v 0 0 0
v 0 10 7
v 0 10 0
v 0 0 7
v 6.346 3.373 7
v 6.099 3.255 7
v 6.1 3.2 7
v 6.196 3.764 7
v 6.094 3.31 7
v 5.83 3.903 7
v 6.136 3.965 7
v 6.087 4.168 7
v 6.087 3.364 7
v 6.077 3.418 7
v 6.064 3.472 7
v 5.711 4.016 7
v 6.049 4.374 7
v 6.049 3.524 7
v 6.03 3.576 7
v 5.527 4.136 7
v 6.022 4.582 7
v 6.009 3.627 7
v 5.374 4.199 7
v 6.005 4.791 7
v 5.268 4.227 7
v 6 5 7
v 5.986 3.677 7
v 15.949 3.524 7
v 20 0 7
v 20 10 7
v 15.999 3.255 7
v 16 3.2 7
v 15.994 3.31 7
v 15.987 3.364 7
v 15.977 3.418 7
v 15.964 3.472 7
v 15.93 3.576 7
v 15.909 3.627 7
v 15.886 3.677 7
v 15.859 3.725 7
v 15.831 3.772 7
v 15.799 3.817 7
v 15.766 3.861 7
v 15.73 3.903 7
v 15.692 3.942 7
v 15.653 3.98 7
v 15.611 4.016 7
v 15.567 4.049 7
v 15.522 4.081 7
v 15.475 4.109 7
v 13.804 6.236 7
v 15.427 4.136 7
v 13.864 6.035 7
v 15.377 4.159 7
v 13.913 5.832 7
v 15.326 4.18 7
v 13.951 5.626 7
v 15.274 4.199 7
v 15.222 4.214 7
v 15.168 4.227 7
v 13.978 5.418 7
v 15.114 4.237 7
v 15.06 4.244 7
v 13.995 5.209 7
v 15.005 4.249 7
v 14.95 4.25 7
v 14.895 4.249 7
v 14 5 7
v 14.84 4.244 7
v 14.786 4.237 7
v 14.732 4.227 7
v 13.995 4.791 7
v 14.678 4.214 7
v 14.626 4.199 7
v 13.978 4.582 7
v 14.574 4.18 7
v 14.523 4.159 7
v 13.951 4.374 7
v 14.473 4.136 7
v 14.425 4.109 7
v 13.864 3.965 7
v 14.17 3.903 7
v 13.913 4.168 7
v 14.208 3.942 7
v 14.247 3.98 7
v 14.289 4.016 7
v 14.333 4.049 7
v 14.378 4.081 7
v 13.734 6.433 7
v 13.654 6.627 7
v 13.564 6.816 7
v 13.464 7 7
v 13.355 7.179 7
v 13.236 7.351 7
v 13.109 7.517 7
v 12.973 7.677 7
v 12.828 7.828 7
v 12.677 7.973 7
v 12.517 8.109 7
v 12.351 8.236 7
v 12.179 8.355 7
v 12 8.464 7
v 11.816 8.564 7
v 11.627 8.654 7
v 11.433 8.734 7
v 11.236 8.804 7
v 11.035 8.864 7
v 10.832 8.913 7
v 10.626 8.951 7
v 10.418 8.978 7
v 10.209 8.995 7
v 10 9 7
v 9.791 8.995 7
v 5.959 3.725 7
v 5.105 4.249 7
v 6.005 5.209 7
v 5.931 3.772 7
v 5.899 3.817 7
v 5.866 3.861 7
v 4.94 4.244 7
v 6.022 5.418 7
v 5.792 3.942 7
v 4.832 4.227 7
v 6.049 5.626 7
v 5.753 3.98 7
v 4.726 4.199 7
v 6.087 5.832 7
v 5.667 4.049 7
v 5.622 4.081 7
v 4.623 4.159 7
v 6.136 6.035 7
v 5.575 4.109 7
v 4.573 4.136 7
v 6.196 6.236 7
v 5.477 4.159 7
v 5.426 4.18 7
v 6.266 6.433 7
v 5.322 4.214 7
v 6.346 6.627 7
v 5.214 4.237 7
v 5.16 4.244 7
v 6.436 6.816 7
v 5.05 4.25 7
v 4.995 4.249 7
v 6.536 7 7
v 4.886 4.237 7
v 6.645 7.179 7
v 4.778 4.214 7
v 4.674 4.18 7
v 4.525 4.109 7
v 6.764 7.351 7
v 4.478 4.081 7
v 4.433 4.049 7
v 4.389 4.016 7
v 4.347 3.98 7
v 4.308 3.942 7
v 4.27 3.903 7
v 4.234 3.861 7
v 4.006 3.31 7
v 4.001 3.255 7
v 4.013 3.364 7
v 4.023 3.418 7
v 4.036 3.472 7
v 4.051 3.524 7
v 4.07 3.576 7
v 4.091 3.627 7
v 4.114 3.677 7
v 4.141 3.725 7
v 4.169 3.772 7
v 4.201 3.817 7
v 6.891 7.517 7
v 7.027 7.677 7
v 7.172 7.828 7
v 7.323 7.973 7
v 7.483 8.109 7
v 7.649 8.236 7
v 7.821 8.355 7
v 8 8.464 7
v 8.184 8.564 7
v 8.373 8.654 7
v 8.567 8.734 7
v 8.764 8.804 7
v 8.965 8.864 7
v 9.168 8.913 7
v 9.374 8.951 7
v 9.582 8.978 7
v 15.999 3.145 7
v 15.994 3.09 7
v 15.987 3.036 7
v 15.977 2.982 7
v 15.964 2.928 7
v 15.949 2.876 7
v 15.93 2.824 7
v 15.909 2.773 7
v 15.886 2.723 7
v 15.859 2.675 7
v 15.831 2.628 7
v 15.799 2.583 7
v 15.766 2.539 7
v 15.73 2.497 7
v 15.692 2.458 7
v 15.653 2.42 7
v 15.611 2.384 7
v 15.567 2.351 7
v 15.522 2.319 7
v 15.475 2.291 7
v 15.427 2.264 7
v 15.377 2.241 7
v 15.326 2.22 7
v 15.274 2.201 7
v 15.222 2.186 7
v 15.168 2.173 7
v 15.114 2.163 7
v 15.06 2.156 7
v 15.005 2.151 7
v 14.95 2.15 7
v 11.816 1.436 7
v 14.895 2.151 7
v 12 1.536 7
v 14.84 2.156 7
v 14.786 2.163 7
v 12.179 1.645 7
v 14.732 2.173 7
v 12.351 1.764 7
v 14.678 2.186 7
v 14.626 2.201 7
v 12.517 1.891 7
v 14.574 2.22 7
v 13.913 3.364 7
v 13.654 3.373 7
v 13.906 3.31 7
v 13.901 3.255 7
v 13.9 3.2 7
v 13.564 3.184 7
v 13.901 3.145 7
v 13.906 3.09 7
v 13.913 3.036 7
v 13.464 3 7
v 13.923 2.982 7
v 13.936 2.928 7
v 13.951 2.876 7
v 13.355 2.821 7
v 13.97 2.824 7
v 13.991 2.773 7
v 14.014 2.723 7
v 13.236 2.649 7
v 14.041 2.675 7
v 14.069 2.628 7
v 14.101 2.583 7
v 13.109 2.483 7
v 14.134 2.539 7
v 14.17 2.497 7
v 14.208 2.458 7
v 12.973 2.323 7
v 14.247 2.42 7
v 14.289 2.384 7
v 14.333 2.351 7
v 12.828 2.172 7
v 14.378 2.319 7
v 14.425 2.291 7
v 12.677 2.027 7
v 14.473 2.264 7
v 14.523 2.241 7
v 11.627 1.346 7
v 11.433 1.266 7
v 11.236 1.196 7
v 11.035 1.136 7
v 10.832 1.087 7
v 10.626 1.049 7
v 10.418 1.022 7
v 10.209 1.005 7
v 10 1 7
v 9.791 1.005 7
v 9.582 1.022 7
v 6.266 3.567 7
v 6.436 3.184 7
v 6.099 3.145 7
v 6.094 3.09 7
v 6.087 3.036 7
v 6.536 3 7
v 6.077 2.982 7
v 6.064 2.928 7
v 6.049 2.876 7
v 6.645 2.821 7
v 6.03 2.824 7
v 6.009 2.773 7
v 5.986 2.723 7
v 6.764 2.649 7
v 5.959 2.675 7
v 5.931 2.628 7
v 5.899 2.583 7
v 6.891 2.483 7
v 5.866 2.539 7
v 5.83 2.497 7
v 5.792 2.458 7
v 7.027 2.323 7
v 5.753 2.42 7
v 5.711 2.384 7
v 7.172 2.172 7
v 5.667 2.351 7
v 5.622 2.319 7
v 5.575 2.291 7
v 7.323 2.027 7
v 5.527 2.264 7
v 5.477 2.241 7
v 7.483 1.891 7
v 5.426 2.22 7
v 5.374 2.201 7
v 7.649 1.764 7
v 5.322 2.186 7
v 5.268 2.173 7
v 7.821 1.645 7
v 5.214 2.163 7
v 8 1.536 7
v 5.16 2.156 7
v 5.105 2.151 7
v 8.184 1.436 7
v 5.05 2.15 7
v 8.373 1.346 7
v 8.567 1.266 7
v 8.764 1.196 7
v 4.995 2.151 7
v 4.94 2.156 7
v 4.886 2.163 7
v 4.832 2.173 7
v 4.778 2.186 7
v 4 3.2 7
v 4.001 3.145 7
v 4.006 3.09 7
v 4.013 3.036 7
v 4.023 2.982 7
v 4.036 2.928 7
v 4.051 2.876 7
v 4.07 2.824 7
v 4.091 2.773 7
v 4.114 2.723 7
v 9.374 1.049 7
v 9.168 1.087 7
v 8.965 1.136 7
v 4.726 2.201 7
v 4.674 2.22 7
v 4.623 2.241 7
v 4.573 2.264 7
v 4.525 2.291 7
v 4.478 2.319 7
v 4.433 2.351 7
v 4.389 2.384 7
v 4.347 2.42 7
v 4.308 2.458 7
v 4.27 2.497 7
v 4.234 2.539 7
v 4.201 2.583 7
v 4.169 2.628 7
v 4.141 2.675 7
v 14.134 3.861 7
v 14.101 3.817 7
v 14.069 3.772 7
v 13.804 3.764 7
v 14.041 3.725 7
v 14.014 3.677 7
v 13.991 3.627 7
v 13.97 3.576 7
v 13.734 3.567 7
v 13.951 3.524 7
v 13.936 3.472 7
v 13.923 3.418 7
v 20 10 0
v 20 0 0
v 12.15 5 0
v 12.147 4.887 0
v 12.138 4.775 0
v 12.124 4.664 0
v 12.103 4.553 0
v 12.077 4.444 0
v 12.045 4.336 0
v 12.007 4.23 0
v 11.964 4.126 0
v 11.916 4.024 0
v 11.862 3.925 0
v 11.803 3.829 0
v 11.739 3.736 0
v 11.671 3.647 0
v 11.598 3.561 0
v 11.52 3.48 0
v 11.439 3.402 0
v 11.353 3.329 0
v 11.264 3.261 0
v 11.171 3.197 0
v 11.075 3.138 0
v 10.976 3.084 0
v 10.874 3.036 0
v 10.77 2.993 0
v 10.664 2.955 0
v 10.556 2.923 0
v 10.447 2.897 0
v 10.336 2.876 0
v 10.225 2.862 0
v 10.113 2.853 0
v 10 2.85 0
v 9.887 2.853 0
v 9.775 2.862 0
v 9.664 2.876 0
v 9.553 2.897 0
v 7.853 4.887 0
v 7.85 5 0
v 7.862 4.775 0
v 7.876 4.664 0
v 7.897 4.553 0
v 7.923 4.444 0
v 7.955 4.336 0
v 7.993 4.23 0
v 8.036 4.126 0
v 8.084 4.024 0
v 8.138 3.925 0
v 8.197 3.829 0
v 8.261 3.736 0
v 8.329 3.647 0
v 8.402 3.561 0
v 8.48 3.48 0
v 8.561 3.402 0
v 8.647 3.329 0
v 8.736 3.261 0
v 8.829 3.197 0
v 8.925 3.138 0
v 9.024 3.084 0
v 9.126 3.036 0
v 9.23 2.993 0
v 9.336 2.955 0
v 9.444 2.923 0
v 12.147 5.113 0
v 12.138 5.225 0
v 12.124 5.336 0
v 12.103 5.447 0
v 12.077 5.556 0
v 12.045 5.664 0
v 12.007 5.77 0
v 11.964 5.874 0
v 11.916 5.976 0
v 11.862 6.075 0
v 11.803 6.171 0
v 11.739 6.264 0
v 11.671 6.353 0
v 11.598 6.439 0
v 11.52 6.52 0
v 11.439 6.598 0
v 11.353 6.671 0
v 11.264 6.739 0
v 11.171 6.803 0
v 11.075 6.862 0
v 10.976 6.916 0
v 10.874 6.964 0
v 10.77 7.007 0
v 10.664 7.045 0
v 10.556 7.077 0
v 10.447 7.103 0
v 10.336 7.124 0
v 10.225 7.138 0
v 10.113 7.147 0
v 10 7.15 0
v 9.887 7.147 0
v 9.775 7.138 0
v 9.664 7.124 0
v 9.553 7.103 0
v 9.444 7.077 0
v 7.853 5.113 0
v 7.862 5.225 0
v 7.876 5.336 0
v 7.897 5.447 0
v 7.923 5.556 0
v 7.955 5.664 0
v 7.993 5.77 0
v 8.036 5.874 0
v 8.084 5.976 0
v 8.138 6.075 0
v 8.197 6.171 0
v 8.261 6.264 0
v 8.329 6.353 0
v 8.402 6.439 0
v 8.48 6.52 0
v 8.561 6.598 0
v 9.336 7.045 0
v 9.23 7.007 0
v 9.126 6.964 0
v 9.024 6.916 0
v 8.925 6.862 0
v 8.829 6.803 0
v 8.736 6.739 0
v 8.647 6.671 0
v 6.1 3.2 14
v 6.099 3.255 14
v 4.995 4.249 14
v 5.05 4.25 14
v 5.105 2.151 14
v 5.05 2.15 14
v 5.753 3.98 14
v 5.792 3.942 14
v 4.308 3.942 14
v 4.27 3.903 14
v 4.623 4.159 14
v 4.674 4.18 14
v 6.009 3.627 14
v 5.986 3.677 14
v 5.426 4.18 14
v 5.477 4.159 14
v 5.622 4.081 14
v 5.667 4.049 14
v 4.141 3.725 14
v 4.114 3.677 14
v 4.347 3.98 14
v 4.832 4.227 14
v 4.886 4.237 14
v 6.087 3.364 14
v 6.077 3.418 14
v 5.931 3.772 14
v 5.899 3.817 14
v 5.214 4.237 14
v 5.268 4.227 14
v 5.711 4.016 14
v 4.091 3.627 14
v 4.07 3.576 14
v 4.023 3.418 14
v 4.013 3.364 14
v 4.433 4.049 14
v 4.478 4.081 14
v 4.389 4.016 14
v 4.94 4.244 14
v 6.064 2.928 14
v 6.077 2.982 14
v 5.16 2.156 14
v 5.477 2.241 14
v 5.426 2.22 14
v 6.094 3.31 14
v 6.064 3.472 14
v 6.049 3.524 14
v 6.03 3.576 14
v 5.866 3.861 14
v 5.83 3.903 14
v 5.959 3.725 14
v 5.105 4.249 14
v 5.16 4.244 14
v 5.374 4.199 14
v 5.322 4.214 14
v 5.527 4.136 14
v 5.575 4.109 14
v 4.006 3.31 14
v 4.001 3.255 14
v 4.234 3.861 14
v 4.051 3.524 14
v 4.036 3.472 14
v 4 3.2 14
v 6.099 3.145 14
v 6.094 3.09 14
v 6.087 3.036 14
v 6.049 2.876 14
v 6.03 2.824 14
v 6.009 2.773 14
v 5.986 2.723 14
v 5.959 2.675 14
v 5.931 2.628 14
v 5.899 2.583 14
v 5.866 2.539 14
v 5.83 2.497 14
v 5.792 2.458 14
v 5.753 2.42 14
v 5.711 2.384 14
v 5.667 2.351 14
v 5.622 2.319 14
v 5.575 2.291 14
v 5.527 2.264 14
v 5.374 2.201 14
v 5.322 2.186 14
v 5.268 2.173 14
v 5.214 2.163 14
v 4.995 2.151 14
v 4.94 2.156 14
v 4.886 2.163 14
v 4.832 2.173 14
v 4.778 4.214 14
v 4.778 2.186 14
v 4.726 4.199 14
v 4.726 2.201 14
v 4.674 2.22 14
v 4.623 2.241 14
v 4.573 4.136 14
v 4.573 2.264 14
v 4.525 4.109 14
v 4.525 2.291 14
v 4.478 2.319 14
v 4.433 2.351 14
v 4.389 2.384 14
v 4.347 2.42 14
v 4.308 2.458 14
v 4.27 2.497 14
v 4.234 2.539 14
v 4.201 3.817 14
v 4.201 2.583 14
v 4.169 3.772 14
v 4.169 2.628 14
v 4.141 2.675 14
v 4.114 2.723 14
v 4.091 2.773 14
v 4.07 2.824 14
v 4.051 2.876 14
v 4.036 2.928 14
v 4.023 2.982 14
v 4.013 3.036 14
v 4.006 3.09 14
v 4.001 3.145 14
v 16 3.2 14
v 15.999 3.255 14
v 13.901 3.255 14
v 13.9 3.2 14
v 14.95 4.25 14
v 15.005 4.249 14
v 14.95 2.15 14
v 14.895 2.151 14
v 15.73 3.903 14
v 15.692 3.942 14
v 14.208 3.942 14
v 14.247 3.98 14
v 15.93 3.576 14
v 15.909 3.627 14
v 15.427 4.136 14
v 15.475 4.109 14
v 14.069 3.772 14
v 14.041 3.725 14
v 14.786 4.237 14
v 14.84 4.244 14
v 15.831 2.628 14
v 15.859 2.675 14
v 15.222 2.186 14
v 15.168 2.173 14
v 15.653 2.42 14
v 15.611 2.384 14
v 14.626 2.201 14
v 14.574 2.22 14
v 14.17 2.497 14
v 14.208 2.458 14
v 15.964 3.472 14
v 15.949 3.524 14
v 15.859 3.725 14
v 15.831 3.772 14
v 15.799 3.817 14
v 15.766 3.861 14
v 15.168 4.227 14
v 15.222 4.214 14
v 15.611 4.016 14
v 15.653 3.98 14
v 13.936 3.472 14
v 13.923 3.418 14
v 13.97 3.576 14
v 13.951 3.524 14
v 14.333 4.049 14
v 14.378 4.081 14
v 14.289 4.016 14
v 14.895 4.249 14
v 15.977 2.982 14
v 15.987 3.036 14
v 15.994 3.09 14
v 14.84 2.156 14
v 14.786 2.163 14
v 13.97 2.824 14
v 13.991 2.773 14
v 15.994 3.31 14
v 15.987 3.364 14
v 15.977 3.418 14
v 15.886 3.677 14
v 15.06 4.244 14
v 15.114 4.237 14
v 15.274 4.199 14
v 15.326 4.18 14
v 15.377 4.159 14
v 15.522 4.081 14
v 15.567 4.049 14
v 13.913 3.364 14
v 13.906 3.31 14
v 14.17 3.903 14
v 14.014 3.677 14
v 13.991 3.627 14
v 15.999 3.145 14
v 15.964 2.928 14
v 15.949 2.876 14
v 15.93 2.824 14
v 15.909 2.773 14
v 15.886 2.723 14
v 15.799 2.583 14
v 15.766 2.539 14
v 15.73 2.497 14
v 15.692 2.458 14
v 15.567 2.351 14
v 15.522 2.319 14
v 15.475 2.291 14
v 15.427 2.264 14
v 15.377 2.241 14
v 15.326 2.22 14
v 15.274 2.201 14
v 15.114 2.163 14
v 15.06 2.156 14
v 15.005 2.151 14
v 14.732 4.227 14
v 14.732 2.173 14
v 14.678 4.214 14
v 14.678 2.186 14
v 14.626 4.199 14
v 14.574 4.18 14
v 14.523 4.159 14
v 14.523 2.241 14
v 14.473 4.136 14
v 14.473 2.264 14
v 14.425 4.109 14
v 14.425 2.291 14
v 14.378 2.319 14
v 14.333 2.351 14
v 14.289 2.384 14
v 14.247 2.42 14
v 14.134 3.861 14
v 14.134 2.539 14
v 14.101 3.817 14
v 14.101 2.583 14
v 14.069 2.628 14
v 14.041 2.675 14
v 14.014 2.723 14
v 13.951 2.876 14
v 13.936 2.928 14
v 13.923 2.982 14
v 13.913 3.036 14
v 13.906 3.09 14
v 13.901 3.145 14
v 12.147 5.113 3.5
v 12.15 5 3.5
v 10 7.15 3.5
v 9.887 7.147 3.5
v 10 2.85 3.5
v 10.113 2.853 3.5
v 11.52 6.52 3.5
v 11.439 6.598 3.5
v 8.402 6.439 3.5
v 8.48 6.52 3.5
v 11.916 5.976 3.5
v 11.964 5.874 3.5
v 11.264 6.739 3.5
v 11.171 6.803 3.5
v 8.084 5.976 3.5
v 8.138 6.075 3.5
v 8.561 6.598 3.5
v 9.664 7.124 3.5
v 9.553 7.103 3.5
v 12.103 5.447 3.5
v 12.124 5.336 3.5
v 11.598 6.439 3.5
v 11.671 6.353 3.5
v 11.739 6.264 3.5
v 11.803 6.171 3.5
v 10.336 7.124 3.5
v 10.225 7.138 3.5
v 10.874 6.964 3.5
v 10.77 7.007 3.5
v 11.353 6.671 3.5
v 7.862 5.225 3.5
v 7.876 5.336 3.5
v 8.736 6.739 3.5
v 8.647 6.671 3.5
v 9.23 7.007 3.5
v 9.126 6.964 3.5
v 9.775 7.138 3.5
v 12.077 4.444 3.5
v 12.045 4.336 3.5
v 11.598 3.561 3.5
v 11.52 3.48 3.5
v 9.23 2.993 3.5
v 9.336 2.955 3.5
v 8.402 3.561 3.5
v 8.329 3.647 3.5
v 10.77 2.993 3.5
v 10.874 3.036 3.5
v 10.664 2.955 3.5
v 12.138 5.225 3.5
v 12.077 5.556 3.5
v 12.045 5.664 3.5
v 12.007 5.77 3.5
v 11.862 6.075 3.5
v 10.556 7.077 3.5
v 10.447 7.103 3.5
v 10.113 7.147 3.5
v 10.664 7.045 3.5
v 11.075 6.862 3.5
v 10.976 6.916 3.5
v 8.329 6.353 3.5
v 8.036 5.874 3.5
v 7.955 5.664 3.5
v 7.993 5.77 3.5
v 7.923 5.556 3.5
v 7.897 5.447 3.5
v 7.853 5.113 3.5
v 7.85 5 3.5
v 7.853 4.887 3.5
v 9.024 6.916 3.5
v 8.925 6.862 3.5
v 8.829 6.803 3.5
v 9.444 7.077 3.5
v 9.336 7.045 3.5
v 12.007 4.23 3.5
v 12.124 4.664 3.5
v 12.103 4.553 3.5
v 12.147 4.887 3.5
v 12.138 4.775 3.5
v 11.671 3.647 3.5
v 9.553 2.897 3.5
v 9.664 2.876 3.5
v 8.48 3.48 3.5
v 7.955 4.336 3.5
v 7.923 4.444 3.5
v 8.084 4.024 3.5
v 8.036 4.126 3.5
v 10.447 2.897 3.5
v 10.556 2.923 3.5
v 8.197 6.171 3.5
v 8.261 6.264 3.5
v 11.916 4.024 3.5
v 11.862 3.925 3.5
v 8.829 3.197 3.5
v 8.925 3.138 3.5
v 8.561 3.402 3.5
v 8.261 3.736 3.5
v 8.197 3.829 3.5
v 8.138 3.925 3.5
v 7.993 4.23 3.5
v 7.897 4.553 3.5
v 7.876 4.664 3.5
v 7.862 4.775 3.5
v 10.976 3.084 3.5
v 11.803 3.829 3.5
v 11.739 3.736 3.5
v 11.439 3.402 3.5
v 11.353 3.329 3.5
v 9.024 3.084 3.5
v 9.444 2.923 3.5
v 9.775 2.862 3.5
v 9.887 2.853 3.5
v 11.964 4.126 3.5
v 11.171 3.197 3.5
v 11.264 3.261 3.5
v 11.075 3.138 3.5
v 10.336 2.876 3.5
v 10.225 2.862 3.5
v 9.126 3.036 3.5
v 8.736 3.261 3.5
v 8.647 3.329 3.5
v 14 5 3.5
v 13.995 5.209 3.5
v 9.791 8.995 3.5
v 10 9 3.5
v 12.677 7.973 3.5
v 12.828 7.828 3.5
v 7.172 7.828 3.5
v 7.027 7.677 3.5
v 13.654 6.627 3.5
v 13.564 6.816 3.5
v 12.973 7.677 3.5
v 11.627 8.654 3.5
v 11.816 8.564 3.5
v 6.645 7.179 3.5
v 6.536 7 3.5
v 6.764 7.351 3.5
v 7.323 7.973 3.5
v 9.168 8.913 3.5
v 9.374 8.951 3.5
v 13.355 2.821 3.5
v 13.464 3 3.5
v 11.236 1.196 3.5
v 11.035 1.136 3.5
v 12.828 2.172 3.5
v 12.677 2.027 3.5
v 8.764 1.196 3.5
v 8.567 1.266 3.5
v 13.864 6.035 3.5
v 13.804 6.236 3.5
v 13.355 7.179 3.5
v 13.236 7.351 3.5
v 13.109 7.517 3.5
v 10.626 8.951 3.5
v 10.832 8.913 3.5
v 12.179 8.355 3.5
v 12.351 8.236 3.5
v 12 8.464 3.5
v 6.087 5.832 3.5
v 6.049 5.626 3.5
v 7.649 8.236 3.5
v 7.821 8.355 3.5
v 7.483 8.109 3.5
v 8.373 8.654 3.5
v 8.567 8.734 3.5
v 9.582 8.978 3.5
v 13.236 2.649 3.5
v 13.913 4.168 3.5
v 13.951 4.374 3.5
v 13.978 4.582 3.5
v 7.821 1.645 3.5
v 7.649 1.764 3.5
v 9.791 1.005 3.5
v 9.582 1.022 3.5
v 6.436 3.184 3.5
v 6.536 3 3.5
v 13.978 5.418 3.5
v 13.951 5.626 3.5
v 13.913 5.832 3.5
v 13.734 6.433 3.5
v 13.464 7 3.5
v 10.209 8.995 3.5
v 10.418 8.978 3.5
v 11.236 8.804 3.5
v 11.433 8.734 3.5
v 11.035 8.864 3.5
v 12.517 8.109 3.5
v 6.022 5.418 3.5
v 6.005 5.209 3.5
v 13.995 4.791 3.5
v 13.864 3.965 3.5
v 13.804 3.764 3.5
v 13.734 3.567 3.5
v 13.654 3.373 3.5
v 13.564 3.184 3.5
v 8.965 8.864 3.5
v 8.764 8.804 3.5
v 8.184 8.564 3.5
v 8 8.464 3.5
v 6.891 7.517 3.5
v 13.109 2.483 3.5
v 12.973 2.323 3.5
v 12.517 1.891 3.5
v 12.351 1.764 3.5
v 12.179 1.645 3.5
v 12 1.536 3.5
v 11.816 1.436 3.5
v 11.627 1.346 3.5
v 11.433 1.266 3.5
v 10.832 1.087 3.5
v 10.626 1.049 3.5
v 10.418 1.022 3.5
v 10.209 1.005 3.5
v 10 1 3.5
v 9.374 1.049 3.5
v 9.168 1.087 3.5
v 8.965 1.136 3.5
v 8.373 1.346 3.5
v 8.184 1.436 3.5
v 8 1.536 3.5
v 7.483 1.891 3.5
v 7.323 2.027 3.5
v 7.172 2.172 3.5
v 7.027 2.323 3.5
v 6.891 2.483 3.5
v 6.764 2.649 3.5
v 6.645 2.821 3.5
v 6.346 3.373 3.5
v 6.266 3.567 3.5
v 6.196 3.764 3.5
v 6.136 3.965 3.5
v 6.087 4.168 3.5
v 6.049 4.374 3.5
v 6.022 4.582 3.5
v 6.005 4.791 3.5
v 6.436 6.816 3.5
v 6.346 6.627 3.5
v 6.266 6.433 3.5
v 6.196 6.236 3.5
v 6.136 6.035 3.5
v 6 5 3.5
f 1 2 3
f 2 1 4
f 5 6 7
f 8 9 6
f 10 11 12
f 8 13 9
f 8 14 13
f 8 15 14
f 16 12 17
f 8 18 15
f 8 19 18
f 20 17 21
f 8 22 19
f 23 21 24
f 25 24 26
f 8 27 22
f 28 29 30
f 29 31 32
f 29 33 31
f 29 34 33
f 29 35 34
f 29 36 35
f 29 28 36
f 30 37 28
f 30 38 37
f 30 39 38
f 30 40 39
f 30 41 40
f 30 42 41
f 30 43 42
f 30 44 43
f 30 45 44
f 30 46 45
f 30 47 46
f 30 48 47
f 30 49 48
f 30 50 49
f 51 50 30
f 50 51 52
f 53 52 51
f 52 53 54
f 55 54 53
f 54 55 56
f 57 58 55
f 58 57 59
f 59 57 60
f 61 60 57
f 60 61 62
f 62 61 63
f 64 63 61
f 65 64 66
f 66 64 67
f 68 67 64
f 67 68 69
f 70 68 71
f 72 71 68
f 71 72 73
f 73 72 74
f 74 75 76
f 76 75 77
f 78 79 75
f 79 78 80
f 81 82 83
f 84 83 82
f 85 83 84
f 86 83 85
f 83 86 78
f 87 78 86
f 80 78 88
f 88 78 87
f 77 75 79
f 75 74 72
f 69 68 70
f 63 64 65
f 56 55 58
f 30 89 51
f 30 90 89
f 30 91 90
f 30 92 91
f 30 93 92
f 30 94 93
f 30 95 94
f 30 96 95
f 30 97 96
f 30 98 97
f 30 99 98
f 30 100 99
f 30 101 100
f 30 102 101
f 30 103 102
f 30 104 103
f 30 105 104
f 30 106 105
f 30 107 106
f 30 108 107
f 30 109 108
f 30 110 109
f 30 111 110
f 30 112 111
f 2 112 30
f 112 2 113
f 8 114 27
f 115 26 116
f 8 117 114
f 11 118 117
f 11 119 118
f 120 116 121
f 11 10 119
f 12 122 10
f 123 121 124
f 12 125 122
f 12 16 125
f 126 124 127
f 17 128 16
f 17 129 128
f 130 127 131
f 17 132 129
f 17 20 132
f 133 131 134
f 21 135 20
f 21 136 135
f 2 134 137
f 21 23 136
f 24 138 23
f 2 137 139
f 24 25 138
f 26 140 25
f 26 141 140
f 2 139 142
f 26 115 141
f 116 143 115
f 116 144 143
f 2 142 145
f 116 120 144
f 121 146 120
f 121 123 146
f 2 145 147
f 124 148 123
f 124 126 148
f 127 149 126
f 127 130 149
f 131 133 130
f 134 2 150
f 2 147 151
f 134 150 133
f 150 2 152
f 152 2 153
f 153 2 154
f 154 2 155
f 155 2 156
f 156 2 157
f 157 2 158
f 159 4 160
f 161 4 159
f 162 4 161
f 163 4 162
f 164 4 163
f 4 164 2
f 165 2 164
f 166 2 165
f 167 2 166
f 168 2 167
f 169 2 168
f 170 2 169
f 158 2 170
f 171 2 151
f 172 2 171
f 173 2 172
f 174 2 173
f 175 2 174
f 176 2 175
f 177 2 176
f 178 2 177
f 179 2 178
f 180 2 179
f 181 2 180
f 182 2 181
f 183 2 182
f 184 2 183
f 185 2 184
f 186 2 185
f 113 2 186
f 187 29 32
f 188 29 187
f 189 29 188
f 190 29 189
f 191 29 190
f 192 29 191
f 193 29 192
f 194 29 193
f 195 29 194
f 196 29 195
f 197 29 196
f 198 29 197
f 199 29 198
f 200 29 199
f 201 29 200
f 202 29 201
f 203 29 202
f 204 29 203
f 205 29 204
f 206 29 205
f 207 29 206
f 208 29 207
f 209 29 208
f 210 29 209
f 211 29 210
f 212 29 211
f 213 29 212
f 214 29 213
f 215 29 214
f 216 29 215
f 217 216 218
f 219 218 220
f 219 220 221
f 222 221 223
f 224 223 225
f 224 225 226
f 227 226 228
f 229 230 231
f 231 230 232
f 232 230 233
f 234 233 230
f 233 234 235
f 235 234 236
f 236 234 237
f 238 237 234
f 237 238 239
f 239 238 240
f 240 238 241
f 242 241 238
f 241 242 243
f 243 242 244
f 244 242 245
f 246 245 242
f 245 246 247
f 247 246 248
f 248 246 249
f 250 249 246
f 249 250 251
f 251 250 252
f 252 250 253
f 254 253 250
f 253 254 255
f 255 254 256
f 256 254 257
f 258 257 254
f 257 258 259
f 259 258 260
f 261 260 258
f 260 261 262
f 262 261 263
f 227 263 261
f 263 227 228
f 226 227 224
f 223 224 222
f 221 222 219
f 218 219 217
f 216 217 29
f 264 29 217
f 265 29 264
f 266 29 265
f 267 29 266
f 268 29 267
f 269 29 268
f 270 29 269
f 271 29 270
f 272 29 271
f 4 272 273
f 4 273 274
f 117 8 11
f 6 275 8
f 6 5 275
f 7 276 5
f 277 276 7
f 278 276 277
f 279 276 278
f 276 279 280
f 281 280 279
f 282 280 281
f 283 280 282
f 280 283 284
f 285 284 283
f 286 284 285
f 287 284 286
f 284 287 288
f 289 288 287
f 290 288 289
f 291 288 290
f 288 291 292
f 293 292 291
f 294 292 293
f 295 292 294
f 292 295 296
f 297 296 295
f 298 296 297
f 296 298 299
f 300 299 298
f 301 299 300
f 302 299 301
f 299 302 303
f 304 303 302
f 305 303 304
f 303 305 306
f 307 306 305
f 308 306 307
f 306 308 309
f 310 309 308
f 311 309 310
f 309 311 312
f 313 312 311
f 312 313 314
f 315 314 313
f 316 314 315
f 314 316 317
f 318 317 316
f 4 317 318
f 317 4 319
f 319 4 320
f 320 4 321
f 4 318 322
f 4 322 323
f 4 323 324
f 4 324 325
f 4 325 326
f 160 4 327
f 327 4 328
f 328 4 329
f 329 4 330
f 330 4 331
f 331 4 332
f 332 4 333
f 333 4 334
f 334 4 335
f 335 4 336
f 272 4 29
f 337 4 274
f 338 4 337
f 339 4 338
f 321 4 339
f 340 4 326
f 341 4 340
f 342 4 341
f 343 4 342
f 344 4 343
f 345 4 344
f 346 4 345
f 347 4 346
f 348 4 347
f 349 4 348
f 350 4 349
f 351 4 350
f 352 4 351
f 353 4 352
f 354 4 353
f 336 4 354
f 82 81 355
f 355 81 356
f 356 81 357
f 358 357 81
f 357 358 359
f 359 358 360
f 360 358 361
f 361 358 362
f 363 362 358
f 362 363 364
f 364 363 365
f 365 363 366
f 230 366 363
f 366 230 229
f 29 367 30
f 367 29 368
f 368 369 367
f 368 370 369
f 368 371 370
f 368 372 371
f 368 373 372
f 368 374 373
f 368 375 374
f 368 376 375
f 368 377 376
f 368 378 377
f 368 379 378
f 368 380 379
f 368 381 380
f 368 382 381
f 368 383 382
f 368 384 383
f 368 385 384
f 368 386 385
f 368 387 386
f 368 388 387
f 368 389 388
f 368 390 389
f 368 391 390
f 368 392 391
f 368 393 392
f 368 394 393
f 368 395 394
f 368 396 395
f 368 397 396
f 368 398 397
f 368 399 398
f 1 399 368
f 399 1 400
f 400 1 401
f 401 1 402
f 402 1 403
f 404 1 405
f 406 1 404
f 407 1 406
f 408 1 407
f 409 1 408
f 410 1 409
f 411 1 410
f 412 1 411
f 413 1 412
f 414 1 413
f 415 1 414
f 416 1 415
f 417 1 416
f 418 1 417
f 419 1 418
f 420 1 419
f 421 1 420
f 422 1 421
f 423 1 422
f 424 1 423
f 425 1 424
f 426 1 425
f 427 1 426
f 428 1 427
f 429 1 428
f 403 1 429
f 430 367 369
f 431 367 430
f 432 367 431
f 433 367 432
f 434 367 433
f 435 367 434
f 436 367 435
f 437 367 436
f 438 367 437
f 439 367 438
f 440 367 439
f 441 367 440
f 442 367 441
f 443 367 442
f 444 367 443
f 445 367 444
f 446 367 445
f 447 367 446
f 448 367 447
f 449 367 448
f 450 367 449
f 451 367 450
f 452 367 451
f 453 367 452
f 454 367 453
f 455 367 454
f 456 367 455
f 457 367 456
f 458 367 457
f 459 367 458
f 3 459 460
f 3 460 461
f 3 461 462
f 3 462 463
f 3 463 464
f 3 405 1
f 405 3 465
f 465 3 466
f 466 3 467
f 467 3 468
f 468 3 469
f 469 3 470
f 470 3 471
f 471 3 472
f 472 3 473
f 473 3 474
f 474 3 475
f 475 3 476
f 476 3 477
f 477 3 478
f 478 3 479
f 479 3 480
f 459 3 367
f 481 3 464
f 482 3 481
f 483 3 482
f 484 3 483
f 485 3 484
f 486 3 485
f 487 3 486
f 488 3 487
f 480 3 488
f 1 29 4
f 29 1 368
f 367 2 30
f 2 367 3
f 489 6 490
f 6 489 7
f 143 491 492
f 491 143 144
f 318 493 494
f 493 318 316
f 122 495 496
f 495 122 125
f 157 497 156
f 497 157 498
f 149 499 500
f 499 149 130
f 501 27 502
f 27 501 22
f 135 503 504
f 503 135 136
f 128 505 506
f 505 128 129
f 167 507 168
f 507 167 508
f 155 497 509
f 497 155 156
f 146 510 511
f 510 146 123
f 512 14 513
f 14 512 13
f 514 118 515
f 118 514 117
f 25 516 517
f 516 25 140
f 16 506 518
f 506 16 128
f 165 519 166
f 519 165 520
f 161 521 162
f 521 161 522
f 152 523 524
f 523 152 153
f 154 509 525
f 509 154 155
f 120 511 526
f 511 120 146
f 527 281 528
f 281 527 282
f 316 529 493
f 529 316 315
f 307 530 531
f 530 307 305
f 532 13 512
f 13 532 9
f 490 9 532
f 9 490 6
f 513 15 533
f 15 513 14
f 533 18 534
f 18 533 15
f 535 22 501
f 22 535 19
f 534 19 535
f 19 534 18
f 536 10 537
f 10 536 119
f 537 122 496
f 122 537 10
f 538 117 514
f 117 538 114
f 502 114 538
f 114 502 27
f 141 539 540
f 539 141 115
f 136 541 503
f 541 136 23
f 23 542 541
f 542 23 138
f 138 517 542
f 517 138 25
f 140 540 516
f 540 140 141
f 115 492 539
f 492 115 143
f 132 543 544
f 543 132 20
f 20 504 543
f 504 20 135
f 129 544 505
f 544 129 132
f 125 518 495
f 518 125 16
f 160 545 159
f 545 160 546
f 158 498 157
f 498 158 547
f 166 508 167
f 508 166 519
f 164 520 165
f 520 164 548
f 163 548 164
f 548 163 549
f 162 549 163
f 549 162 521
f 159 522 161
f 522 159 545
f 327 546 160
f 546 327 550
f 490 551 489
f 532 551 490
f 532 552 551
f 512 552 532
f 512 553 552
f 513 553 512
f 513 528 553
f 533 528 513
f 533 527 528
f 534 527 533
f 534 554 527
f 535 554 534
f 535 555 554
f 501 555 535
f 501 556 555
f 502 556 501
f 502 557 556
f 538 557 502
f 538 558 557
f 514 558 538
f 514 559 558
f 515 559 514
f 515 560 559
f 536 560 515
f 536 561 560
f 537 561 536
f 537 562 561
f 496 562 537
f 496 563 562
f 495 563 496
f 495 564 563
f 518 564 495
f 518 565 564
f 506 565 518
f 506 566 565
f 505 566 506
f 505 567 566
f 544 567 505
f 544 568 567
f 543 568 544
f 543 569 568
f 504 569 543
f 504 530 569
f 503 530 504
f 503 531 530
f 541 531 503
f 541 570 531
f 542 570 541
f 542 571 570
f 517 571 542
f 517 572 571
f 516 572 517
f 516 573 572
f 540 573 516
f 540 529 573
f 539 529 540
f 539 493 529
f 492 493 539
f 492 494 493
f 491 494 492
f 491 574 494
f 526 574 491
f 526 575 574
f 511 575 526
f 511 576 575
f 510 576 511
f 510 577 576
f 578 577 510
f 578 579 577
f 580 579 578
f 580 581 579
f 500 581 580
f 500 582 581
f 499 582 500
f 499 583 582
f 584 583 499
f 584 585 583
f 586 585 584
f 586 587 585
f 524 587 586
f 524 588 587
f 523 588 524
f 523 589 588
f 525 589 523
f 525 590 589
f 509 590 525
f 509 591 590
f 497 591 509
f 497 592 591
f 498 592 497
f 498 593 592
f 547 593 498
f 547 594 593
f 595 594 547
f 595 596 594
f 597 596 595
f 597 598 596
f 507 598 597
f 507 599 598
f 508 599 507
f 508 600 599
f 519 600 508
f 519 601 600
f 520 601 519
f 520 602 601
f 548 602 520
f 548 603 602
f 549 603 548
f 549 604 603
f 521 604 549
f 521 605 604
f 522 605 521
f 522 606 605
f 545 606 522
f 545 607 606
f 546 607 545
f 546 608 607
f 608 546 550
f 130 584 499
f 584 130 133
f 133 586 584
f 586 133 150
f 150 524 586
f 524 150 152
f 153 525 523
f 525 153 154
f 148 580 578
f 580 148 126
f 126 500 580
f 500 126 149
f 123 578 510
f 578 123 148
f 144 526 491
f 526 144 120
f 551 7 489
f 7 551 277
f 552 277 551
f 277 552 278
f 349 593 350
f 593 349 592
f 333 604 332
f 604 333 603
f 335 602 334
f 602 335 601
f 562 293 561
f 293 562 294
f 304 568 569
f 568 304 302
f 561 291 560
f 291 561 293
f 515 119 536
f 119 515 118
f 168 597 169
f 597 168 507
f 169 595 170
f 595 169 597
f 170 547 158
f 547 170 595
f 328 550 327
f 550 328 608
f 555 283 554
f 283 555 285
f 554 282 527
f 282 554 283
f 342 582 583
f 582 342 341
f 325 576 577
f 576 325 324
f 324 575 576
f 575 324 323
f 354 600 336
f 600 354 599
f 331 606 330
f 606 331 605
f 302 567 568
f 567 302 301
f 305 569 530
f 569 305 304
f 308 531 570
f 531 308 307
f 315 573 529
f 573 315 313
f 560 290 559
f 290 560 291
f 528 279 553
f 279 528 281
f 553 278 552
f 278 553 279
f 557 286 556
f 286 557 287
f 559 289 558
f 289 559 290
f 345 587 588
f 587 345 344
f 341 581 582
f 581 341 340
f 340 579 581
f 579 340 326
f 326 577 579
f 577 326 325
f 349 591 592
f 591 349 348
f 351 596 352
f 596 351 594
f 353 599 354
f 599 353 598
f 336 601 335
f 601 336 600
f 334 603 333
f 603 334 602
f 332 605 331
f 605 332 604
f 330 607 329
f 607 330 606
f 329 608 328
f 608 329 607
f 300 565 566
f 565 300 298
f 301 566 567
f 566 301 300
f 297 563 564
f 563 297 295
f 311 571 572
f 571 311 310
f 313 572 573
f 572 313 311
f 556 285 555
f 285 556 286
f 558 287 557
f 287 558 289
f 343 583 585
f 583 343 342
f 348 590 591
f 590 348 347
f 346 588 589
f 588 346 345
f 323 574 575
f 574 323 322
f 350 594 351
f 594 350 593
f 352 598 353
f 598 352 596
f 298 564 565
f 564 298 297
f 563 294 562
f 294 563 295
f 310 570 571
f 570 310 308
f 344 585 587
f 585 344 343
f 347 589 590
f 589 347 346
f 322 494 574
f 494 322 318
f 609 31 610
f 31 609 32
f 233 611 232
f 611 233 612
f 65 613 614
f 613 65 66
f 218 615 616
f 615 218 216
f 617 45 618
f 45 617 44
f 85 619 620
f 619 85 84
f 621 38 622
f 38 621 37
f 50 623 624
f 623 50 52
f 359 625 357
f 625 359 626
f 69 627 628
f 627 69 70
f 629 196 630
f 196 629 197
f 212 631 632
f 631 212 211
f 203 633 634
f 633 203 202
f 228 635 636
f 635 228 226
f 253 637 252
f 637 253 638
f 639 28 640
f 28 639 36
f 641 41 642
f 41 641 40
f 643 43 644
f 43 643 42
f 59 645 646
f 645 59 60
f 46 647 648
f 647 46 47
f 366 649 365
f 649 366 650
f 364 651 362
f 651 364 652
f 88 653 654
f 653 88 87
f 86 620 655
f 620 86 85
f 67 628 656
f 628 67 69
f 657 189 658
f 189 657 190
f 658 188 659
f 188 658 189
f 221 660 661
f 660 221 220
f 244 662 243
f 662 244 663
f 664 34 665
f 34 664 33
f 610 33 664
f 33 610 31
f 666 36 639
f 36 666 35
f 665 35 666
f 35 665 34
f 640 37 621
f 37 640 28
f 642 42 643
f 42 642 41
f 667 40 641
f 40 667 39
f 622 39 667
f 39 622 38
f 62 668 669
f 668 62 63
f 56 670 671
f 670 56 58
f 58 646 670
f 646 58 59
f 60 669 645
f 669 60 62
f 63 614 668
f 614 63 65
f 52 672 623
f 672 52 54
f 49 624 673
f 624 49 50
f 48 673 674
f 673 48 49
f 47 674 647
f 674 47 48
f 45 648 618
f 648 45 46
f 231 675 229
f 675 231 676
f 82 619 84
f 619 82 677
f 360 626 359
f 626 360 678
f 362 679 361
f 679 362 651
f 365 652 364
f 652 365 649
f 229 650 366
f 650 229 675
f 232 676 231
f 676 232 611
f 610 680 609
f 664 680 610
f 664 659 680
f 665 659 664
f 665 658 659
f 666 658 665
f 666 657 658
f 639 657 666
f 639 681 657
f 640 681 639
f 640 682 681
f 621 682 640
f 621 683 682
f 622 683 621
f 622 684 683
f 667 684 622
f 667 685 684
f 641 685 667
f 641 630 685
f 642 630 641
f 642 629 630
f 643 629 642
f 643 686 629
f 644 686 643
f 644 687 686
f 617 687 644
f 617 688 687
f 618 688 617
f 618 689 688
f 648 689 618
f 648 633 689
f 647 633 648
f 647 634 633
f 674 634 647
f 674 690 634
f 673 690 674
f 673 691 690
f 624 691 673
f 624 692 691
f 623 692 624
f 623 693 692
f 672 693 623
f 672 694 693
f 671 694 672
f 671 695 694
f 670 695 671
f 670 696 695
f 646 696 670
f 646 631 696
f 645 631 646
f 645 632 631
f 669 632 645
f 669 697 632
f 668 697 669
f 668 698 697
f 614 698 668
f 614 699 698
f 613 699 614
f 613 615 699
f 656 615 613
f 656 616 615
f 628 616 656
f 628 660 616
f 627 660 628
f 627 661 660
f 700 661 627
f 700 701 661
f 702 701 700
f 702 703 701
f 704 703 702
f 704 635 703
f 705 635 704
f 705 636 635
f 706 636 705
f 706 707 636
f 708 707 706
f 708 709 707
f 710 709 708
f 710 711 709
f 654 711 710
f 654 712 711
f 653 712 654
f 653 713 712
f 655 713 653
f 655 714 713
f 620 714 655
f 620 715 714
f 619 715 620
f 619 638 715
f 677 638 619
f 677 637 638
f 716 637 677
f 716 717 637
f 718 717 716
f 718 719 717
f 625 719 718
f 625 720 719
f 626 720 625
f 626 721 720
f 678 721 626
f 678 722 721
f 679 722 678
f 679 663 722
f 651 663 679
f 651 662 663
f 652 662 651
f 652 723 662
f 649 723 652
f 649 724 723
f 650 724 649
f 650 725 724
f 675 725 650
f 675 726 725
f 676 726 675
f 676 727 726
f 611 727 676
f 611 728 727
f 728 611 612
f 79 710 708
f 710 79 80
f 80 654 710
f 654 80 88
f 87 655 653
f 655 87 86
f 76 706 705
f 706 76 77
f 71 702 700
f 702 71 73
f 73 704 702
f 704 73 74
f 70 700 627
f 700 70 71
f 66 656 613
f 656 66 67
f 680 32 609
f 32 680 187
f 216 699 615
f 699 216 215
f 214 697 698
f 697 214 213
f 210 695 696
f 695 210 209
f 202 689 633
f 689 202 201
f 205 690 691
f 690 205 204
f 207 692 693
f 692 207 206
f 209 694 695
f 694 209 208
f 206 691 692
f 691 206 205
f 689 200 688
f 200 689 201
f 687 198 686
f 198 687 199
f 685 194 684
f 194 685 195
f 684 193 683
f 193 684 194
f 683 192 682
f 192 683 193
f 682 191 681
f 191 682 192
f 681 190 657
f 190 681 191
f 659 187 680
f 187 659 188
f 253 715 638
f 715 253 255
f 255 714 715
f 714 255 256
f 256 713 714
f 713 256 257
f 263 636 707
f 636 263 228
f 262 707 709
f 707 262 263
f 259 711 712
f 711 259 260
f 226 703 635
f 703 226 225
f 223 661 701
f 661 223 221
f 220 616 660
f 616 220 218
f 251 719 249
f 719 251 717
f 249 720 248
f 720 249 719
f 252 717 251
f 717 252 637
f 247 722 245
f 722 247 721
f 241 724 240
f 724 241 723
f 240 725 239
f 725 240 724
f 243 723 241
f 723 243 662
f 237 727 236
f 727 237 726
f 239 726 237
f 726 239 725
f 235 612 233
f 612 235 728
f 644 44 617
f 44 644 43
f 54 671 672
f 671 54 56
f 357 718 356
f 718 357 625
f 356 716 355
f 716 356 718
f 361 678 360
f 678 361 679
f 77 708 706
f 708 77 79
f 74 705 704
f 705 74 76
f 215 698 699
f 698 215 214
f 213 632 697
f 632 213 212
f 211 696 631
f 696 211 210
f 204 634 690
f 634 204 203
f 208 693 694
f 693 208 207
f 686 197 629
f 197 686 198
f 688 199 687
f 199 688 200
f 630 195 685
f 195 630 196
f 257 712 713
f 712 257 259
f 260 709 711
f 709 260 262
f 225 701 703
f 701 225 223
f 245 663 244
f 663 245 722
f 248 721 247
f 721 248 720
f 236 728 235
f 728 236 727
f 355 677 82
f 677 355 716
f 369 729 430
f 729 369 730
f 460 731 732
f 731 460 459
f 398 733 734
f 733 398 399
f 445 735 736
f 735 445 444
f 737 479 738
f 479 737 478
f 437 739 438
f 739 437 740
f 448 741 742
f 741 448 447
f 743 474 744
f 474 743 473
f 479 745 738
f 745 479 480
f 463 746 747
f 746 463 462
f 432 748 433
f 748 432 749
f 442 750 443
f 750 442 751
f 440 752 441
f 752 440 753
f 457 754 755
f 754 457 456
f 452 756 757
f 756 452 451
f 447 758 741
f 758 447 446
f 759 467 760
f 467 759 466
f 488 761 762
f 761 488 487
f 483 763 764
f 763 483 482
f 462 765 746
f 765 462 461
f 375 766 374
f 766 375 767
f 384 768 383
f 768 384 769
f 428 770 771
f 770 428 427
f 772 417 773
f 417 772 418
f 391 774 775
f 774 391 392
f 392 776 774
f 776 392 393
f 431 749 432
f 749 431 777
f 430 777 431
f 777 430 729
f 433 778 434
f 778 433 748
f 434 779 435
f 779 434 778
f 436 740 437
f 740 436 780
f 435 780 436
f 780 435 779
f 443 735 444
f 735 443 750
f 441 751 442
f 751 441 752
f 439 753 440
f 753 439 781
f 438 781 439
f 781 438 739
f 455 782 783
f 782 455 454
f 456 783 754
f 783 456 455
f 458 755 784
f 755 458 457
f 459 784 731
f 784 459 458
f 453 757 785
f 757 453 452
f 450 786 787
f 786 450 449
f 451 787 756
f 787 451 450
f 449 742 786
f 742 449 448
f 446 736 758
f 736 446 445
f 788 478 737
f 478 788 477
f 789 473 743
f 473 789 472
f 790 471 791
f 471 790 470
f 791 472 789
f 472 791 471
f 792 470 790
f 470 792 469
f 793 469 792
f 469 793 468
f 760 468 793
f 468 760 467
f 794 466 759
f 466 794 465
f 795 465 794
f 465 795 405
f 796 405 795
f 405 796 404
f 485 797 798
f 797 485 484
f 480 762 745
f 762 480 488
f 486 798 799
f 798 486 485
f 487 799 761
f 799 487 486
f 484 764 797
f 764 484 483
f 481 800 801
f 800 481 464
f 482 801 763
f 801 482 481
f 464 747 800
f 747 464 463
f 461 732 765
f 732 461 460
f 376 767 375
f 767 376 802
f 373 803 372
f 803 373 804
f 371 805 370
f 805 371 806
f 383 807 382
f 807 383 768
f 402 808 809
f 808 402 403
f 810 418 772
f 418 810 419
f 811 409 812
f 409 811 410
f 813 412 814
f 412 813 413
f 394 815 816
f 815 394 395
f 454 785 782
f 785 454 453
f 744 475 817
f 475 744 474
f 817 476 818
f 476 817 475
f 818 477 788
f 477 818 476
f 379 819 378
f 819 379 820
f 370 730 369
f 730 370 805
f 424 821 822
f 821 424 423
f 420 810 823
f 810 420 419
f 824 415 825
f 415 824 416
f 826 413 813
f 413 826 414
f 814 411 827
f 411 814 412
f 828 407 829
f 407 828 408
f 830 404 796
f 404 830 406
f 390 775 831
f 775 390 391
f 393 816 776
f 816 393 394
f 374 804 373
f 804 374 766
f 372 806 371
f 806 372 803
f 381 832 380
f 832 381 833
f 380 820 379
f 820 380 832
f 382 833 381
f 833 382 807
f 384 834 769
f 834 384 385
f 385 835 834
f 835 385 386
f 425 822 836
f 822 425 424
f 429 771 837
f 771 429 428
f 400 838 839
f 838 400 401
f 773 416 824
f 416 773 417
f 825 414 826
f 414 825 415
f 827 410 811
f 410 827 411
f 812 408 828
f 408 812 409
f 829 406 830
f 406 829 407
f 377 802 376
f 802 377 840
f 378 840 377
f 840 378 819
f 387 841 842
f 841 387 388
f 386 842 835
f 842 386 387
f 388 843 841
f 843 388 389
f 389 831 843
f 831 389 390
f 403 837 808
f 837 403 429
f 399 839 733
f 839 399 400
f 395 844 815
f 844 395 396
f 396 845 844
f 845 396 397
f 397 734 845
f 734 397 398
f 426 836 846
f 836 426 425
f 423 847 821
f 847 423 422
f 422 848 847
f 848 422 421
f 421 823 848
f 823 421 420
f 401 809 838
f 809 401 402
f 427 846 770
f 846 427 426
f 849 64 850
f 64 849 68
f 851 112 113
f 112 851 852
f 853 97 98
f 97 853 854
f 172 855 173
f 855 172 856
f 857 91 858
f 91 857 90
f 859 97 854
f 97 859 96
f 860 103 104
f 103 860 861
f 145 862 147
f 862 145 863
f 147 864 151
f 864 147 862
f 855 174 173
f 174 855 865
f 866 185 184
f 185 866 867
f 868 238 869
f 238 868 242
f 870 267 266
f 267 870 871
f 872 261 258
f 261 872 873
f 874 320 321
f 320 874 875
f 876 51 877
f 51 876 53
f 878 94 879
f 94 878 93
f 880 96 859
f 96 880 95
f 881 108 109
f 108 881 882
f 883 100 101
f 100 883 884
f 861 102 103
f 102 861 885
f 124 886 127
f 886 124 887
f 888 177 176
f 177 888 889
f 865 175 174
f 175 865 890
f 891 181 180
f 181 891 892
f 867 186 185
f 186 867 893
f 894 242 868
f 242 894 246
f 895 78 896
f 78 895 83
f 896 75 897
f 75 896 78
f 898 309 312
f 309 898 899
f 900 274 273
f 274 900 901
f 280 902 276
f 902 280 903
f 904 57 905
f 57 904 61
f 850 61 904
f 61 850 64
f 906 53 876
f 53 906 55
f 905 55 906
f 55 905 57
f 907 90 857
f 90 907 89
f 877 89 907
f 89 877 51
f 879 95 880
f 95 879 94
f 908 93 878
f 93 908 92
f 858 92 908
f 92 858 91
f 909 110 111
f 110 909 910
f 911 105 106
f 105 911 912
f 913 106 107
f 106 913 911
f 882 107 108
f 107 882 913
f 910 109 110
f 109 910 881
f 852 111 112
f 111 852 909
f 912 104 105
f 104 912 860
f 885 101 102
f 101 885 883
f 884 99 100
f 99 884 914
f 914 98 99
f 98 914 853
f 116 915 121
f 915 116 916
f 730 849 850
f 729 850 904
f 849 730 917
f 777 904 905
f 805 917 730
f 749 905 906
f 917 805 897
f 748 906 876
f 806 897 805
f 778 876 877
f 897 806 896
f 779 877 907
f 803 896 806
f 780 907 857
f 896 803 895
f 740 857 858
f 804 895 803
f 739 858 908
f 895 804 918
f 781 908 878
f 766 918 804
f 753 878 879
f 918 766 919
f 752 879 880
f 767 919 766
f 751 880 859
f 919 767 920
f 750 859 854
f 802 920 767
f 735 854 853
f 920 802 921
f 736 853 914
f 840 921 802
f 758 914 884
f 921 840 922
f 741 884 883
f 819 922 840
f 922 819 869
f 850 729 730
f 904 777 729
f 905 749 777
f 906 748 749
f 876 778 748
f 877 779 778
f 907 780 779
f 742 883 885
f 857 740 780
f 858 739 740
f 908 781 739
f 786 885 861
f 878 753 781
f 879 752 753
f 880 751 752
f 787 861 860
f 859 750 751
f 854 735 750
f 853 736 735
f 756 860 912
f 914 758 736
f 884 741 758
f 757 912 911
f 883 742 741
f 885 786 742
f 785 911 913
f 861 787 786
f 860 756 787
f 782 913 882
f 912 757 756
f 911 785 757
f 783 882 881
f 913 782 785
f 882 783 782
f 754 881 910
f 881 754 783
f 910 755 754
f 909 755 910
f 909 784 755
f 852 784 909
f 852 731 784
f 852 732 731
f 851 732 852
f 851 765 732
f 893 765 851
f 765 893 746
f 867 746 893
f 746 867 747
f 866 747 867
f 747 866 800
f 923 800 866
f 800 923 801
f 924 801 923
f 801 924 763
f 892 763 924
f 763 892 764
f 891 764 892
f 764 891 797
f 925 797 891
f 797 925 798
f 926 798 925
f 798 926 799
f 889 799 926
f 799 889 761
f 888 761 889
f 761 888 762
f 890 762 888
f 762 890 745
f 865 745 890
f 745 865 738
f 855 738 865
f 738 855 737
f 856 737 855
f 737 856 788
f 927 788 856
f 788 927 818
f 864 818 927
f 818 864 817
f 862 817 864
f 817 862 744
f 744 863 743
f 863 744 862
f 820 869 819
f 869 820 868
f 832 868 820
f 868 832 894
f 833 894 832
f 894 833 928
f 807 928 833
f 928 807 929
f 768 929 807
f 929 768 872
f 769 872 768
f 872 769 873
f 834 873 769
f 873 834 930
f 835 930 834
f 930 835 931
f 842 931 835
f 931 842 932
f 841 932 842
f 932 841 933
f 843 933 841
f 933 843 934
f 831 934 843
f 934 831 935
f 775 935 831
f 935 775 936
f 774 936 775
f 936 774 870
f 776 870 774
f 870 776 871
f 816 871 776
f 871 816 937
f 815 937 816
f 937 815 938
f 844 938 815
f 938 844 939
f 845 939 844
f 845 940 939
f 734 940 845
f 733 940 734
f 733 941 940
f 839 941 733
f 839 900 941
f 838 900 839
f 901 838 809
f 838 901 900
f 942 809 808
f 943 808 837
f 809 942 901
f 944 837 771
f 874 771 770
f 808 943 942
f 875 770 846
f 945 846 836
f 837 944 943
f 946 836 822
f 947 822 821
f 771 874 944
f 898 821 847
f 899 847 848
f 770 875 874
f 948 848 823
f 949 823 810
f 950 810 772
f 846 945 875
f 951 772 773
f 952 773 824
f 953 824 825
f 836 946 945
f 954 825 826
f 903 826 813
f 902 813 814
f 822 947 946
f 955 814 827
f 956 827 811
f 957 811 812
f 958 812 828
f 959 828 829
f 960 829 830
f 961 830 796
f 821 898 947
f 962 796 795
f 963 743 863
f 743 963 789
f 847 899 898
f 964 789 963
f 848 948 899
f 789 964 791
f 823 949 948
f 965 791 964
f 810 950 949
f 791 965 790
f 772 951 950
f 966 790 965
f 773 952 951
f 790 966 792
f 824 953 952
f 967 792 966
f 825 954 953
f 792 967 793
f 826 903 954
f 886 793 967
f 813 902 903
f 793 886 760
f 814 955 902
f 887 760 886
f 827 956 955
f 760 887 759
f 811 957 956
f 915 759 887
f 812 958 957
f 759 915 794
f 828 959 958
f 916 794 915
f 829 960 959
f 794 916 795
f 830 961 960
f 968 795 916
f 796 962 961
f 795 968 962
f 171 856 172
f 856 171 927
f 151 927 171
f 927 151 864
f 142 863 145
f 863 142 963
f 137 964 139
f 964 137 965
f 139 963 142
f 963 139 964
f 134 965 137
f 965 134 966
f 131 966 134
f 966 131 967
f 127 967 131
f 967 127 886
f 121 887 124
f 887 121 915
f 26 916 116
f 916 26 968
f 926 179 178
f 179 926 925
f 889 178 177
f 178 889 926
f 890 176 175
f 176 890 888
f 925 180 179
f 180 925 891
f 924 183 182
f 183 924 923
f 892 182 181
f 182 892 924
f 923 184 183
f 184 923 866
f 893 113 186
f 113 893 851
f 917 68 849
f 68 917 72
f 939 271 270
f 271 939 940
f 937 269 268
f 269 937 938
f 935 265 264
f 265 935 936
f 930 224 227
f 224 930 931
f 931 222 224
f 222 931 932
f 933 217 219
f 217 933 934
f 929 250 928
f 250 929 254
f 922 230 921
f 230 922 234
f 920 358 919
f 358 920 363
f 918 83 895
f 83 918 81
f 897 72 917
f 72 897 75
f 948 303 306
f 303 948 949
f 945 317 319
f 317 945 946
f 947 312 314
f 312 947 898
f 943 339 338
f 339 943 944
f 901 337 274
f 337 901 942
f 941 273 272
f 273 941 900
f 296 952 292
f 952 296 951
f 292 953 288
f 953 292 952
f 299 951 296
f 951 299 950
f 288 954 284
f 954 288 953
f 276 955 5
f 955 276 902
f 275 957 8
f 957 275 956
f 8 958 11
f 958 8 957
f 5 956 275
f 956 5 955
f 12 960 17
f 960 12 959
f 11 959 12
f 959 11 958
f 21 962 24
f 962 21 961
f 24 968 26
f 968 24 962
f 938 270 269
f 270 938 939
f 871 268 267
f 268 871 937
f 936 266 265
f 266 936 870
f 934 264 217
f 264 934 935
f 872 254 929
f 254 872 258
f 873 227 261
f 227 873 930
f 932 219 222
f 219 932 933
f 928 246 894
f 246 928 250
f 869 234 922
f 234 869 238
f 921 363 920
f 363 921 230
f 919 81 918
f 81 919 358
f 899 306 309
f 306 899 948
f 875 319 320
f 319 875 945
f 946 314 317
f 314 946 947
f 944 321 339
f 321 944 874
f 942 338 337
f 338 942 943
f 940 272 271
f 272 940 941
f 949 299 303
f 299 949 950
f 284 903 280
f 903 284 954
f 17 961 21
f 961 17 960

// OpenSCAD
$fn=120;
//endswitchmount

M2_spike = 2.1;


difference() {
    union() {
        //translate([0, -10, 0])
            //cube([20, 20, 6]);
        cube([20, 10, 7]);
        translate([4 + (M2_spike / 2), 10-6.8, 3])
            cylinder(h=11, d=M2_spike);
        translate([20 - (4 + (M2_spike / 2)), 10-6.8, 3])
            cylinder(h=11, d=M2_spike);
    }
    union() {
        translate([10, 5, -10])
            cylinder(h=20, d=4.3);
        translate([10, 5, 3.5])
            cylinder(h=7, d=8);
        //translate([10, -4.91, -10])
        //    cylinder(h=20, d=4.3);
        //translate([10, -4.91, 3])
        //    cylinder(h=7, d=7);
    }
}
    
